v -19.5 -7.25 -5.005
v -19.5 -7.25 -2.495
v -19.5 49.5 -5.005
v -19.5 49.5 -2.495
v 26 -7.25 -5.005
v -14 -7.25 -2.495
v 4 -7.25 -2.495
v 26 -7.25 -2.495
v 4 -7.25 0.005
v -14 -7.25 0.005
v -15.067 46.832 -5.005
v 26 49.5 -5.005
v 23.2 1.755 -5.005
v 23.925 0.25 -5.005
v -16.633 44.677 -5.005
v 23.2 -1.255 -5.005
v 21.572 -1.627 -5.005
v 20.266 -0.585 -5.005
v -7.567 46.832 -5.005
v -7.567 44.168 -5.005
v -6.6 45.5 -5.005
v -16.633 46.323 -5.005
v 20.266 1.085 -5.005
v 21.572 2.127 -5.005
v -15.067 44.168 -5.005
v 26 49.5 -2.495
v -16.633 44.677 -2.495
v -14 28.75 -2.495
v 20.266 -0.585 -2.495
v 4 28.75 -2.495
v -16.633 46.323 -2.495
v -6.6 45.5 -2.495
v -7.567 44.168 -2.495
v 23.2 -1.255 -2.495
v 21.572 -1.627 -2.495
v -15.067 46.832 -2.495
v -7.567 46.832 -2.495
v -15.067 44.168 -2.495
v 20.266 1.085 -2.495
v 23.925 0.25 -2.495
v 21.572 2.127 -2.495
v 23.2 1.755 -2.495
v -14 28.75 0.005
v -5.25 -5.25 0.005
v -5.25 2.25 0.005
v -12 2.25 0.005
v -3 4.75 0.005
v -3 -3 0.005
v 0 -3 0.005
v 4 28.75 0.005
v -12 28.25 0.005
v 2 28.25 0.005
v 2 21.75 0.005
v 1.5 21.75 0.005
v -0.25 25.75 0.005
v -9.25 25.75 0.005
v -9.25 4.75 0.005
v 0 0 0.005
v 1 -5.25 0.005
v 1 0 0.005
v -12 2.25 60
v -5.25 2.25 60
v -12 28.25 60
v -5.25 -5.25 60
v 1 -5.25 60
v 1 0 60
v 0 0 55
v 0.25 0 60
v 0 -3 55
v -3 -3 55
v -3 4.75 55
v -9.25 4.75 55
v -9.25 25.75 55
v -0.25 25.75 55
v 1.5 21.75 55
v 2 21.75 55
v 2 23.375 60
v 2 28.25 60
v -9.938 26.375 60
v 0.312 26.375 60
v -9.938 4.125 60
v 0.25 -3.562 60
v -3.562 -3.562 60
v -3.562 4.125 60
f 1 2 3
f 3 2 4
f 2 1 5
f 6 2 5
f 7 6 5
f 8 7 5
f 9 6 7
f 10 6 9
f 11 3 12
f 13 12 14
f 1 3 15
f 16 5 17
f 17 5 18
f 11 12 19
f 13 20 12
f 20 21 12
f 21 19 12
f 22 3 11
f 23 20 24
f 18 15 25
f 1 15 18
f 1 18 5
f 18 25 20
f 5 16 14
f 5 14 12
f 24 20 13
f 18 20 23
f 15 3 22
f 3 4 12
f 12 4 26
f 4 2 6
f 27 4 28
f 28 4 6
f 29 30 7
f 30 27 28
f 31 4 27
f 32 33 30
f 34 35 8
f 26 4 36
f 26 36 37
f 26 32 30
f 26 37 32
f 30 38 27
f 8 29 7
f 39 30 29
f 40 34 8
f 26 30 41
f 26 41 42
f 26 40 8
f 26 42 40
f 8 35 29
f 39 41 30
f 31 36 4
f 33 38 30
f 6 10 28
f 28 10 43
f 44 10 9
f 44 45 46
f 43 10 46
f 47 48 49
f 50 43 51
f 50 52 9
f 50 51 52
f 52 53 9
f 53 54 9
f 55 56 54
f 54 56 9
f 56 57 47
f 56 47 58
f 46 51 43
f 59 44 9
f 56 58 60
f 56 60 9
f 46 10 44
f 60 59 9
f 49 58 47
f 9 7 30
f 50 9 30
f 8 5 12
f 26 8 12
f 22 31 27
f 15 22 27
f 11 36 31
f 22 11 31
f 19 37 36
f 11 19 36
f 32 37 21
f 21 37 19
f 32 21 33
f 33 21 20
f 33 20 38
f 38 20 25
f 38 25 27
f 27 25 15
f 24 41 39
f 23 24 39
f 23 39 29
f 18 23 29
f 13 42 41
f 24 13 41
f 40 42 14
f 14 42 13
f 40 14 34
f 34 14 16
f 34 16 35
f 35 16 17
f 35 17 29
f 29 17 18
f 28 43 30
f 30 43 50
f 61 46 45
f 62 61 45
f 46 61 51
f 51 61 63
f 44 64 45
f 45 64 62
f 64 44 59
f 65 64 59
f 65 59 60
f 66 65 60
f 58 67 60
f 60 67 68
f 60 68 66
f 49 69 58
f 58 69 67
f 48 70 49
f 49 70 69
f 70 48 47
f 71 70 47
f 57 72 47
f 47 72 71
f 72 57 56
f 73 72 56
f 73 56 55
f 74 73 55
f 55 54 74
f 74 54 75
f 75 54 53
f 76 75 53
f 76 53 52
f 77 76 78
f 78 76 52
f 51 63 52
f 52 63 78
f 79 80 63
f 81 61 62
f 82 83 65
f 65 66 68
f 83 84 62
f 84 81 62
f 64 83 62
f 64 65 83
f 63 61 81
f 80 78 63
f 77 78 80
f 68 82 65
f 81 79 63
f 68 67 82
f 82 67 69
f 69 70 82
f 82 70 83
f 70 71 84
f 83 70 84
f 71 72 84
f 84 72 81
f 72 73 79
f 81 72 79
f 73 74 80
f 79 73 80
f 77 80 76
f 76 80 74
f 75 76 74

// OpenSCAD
module railbase() {
	polygon(points=[[1,0],[1,-5.25],[-5.25,-5.25],[-5.25,2.25],[-12,2.25],[-12,28.25],[2,28.25],[2,21.75],[1.5,21.75],[-0.25,25.75],[-9.25,25.75],[-9.25,4.75],[-3,4.75],[-3,-3],[0,-3],[0,0]]);
}

module railext1() {
	linear_extrude(height=0.01)
	polygon(points=[[-3,2.25],[-12,2.25],[-12,28.25],[2,28.25],[2,21.75]]);
}

module railint1() {
	linear_extrude(height=0.01)
		polygon(points=[[2,21.75],[1.5,21.75],[-0.25,25.75],[-9.25,25.75],[-9.25,4.75],[-3,4.75]]);
}

module railext2() {
	linear_extrude(height=0.01)
	polygon(points=[[1,0],[1,-5.25],[-5.25,-5.25],[-5.25,4.75]]);
}

module railint2() {
	linear_extrude(height=0.01)
		polygon(points=[[-3,4.75],[-3,-3],[0,-3],[0,0]]);
}

module rail(rlength) {
	linear_extrude(height=rlength)
		railbase();
}

module railtaper(taperwid,offset) {
	hull() {
		translate([0,0,offset-taperwid]) railint1();
		translate([0,0,offset+taperwid]) railext1();
	}
	hull() {
		translate([0,0,offset-taperwid]) railint2();
		translate([0,0,offset+taperwid]) railext2();
	}
}

difference() {
	rail(60);
	railtaper(10,65);
}

translate([-5,10.75,-1.25]) cube(size=[18,36,2.51],center=true);

translate([3.25,21.125,-3.75]) difference(){
	cube(size=[45.5,56.75,2.51],center=true);
	hull(){
		translate([-18.75,24.375,-1]) cylinder(h=6,r=1.4,center=true);
		translate([-11.25,24.375,-1]) cylinder(h=6,r=1.4,center=true);
	}
	translate([18.75,-20.875,-1]) cylinder(h=6,r=3.85/2,center=true);
}
	
